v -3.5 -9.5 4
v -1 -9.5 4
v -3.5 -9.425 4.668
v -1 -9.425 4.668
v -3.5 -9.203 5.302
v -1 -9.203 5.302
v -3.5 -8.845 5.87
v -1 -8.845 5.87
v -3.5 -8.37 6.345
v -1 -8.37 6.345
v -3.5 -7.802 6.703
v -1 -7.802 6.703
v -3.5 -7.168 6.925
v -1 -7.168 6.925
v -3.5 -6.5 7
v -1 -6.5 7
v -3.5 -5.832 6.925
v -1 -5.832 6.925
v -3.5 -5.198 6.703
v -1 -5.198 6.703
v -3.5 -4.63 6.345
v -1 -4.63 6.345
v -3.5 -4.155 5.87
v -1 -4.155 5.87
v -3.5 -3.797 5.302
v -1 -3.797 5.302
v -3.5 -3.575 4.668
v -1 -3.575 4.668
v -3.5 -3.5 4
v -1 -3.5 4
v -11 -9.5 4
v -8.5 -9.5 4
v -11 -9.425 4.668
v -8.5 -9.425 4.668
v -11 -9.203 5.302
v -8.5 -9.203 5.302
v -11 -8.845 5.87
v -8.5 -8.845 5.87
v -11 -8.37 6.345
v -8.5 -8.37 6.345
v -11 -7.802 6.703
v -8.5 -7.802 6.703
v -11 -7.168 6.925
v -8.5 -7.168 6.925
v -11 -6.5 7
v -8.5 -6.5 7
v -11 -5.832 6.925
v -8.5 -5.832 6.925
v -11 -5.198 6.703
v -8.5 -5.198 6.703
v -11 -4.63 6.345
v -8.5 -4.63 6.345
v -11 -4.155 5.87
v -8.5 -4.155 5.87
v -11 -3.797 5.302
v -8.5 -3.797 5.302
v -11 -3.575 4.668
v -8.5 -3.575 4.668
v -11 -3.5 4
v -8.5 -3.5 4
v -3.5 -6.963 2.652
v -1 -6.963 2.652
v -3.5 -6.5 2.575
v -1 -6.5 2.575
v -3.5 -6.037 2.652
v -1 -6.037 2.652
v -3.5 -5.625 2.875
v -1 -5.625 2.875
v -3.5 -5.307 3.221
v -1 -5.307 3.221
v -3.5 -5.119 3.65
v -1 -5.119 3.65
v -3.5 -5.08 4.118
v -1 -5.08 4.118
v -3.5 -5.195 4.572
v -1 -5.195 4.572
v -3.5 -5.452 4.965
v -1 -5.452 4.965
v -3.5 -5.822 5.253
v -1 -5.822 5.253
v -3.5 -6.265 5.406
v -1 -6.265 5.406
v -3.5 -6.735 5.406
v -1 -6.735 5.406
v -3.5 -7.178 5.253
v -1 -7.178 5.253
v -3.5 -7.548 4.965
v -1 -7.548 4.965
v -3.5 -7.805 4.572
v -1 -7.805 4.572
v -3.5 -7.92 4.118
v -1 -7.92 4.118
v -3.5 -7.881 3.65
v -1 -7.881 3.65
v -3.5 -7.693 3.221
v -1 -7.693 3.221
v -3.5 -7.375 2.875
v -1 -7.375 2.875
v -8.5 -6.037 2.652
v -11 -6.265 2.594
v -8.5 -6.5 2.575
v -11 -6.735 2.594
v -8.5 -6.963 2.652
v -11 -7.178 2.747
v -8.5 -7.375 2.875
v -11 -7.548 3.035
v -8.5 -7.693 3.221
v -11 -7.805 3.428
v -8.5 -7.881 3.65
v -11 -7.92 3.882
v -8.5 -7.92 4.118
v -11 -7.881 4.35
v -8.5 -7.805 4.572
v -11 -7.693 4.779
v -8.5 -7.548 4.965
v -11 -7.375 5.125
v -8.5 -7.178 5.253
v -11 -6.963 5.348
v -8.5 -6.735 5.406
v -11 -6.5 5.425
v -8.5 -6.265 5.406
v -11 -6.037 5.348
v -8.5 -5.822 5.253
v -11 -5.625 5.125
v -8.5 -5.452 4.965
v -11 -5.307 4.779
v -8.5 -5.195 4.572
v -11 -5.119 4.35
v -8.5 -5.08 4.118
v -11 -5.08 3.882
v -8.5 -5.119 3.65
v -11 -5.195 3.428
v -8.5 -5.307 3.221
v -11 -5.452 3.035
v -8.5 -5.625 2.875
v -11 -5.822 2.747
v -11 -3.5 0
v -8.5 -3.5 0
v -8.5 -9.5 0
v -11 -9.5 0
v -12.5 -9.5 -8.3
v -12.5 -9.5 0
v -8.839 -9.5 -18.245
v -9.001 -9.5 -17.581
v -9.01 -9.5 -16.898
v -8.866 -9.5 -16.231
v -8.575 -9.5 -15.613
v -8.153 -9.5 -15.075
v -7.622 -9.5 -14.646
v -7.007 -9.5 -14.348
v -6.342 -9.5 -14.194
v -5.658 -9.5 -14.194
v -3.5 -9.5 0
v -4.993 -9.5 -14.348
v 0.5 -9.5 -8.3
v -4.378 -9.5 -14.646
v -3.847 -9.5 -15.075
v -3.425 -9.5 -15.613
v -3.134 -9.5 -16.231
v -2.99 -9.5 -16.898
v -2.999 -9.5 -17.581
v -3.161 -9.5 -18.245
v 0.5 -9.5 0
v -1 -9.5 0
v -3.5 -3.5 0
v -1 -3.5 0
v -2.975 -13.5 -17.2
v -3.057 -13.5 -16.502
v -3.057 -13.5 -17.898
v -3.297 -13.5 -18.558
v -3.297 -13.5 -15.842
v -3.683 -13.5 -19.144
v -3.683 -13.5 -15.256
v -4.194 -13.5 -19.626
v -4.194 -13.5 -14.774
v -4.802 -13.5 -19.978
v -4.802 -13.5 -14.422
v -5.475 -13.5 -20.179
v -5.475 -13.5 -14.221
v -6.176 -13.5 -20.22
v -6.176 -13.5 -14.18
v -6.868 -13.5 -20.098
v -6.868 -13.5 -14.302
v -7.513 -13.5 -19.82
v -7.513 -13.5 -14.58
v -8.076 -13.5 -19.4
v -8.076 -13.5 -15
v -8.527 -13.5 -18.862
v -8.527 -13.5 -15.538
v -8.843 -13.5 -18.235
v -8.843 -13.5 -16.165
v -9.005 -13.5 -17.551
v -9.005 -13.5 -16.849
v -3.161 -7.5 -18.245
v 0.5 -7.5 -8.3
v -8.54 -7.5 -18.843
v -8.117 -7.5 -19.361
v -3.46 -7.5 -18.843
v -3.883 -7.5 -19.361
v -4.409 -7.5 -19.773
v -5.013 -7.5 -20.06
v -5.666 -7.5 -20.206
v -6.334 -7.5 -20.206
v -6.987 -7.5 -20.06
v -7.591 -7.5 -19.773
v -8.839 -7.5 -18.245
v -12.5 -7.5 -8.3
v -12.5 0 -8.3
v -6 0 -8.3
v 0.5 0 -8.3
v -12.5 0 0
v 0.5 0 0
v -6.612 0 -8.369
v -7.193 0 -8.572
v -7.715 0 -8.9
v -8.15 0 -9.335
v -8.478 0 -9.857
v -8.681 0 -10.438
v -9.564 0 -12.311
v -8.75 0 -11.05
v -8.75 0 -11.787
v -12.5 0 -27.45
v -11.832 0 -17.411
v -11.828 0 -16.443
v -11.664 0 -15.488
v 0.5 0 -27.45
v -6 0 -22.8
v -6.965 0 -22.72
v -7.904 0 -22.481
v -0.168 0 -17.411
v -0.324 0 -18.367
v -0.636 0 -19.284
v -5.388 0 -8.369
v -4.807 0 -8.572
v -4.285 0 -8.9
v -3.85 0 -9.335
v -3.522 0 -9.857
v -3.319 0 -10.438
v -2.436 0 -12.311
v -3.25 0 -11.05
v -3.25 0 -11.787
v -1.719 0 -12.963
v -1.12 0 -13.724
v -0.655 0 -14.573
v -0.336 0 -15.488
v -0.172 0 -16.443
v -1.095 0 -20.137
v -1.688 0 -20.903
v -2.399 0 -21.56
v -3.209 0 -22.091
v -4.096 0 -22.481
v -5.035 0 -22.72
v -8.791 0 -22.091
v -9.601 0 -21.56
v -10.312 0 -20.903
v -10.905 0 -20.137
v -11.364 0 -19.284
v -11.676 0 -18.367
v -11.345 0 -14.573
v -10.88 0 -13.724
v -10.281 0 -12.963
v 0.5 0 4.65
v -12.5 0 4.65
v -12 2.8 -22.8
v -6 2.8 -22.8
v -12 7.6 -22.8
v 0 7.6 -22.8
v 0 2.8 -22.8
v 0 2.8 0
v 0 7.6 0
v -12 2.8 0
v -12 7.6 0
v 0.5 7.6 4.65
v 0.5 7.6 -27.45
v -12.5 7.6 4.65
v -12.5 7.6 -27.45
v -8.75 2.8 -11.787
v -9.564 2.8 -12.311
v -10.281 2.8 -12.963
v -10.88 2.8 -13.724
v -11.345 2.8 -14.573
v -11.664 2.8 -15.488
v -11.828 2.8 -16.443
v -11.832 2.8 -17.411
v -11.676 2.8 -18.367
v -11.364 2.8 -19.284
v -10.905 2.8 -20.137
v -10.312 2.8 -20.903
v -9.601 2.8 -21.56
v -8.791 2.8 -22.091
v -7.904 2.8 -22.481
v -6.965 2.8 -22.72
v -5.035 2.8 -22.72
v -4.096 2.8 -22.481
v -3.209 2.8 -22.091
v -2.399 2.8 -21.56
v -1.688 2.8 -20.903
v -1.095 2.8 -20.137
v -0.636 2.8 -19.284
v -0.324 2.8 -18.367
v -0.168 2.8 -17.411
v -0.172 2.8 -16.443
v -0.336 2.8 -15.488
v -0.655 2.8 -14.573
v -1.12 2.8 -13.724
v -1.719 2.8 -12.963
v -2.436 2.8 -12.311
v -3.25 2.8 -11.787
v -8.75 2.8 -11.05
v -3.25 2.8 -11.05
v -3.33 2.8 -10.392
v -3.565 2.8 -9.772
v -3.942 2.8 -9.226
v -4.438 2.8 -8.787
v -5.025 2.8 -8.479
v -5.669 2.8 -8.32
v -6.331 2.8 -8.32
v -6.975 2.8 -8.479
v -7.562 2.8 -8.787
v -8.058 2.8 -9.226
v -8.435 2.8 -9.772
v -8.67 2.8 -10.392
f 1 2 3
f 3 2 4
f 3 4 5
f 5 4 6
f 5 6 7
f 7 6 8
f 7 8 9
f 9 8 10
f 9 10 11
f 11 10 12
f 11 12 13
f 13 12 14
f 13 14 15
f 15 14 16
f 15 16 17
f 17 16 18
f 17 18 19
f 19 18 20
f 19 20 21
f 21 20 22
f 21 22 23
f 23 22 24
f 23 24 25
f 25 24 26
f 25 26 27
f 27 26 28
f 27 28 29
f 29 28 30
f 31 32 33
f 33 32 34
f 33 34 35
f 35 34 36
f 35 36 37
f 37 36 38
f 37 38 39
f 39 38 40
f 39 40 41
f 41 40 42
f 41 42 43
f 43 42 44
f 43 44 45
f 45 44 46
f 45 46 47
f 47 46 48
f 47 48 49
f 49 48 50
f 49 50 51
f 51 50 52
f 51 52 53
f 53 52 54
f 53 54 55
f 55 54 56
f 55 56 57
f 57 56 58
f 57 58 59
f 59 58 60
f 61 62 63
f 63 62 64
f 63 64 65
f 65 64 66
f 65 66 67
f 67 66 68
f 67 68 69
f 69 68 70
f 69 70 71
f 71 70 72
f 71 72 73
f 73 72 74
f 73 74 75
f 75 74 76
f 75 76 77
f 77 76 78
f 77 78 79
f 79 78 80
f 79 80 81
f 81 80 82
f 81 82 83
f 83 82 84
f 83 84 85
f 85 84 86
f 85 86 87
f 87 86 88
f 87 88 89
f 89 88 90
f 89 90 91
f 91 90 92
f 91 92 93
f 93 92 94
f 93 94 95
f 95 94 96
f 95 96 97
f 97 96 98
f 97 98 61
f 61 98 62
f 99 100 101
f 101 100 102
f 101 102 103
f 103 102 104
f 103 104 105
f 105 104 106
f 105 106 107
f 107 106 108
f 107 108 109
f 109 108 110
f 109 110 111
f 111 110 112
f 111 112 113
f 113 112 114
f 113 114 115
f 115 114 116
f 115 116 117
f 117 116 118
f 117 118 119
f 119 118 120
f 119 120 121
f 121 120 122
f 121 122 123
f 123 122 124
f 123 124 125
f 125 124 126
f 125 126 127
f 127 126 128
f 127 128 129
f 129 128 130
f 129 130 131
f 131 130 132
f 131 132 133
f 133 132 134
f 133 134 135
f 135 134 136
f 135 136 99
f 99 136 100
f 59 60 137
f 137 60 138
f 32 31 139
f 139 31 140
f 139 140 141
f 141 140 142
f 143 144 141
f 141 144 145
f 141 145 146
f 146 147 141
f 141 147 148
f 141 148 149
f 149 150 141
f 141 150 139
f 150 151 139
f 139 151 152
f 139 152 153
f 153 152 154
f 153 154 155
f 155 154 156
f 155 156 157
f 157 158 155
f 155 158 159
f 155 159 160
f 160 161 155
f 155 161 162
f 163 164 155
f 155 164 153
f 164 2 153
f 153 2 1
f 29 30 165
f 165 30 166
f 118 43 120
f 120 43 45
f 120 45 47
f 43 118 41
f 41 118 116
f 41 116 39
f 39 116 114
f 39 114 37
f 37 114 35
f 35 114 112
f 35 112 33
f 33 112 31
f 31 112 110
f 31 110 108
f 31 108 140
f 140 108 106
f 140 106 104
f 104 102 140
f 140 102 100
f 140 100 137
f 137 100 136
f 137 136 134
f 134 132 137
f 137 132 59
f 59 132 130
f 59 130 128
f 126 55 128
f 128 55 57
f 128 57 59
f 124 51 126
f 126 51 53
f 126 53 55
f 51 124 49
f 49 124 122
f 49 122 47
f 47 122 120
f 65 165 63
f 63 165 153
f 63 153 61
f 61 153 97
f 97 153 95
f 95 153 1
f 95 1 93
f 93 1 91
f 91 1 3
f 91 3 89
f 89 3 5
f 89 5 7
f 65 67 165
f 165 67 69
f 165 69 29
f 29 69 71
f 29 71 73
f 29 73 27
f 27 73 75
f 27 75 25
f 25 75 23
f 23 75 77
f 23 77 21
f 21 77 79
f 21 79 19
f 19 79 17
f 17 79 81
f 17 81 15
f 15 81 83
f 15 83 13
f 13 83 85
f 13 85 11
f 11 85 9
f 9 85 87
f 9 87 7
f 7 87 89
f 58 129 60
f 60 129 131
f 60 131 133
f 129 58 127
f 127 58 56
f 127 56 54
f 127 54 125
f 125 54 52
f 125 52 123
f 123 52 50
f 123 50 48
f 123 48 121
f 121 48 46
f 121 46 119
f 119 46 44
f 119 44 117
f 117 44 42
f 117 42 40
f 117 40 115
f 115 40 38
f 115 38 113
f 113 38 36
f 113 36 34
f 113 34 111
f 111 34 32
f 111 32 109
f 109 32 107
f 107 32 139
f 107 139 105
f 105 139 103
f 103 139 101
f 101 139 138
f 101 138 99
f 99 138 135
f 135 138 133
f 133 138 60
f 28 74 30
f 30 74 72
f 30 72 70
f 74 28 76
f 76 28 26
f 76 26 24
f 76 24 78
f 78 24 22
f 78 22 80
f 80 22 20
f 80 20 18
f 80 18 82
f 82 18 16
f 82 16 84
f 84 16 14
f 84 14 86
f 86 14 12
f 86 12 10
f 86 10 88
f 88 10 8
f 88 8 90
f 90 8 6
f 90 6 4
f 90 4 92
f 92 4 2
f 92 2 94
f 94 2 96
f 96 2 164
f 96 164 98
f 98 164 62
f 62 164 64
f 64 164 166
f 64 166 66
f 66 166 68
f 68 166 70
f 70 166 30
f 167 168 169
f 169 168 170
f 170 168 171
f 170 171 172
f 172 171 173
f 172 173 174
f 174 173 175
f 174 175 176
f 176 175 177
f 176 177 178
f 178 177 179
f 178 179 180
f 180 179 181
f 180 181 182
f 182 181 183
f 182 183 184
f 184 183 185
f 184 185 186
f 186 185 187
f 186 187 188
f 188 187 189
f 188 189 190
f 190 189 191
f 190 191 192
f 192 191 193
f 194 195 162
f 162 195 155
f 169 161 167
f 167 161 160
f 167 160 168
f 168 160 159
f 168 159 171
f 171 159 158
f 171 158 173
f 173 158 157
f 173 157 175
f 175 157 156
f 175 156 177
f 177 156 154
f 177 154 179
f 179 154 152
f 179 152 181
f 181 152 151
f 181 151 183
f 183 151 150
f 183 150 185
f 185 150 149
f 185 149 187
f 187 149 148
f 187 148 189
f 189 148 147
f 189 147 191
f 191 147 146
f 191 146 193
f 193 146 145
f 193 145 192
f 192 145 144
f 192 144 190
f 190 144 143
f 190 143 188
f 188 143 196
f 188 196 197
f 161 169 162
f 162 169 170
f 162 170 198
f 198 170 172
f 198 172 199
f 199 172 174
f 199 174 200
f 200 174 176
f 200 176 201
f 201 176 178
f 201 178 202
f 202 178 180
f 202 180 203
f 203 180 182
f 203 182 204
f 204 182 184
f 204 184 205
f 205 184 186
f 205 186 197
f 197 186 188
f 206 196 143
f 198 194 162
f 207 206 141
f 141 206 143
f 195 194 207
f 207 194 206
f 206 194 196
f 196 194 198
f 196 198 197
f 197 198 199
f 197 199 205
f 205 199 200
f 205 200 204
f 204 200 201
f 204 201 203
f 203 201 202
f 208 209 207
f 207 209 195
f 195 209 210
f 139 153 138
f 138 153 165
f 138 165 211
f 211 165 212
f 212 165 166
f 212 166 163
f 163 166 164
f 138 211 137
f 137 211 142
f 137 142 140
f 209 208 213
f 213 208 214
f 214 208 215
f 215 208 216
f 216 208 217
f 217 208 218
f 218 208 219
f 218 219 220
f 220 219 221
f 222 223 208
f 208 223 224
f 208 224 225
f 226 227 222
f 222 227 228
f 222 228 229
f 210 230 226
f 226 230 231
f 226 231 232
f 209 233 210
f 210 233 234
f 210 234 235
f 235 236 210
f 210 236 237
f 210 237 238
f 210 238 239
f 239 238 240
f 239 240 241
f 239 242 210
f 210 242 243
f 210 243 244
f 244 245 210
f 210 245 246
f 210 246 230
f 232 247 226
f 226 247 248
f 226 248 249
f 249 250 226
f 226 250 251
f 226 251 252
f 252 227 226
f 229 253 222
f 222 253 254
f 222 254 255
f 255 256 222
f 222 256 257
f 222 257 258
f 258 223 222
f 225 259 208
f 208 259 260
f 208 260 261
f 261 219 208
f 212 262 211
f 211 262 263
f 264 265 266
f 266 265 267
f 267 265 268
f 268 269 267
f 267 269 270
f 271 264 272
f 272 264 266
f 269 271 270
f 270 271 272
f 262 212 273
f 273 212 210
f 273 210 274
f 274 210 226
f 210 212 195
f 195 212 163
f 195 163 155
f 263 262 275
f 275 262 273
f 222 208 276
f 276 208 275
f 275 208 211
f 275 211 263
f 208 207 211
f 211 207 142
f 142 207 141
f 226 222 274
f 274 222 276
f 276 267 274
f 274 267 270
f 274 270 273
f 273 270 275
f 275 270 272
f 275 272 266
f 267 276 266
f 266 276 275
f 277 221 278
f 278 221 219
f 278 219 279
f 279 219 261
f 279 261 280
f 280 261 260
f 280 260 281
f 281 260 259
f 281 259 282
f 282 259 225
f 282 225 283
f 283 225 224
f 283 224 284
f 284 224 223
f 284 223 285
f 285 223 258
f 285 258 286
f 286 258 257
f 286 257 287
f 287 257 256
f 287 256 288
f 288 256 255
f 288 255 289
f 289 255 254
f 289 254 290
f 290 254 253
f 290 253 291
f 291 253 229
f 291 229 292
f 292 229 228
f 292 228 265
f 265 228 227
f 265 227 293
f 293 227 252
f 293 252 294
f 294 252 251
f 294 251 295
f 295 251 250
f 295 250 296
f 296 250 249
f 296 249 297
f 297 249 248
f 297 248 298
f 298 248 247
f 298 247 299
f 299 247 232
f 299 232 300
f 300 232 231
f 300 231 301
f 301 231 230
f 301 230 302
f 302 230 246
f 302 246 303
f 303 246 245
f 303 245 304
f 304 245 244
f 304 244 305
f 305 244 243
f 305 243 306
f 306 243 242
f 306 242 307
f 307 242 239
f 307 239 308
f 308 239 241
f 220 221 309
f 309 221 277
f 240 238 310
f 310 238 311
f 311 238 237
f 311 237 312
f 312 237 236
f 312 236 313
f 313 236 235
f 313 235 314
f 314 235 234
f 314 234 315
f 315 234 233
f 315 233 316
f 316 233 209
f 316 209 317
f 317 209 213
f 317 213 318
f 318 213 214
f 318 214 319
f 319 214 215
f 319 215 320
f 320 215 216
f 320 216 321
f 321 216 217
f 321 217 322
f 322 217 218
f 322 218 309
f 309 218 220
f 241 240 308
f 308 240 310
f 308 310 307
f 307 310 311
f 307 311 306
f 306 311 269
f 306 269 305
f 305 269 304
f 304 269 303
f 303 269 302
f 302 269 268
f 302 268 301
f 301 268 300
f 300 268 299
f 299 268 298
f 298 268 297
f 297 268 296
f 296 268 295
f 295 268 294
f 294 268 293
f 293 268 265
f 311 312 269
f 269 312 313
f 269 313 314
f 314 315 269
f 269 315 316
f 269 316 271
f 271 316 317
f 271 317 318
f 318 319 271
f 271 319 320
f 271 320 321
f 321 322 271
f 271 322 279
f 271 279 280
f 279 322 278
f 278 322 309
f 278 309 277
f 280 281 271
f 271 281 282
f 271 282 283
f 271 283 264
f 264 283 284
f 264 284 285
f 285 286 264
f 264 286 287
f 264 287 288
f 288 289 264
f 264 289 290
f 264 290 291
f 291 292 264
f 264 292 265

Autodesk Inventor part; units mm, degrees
ref_plane "YZ Plane" through (0, 0, 0) normal (1, 0, 0) x (0, 1, 0)
ref_plane "XZ Plane" through (0, 0, 0) normal (0, 1, 0) x (-1, 0, 0)
ref_plane "XY Plane" through (0, 0, 0) normal (0, 0, 1) x (1, 0, 0)
sketch "Sketch1" plane through (0, 0, 0) normal (0, 1, 0) x (-1, 0, 0)
  line L0 (0, 0) -> (12, 0)
  line L1 (12, 0) -> (12, -22.8)
  line L2 (12, -22.8) -> (0, -22.8)
  line L3 (0, -22.8) -> (0, 0)
  line L4 (6, -22.8) -> (6, -11.1)
  line L5 (12, 0) -> (12, 4.65)
  line L6 (12, 4.65) -> (12.5, 4.65)
  line L7 (0, -22.8) -> (-0.5, -22.8)
  line L8 (-0.5, -22.8) -> (-0.5, -27.45)
  line L9 (12.5, 4.65) -> (-0.5, 4.65)
  line L10 (-0.5, 4.65) -> (-0.5, -27.45)
  line L11 (-0.5, -27.45) -> (12.5, -27.45)
  line L12 (12.5, -27.45) -> (12.5, 4.65)
  circle A0 centre (6, -16.95) radius 5.85
  line L13 (6, -11.1) -> (6, -8.3)
  line L14 (6, -8.3) -> (6, -11.05)
  circle A1 centre (6, -11.05) radius 2.75
  line L15 (3.25, -11.05) -> (3.25, -11.7867)
  line L16 (8.75, -11.05) -> (8.75, -11.7867)
  dimension "d0" = 22.8
  dimension "d1" = 12
  dimension "d5" = 4.65
  dimension "d6" = 0.5
  dimension "d7" = 0.5
  dimension "d8" = 4.65
  dimension "d42" = 11.7
  dimension "d43" = 2.8
  dimension "d44" = 2.75
extrude "Extrusion1" add sketch "Sketch1" along normal blind 2.8 contours L0 L1 L2 L3
extrude "Extrusion3" add sketch "Sketch1" along normal blind 7.6 contours L3 L7 L10 L9 L5 L0 | L5 L6 L12 L11 L8 L7 L2 L1
sketch "Sketch5" plane through (0, 0, 0) normal (0, -1, 0) x (1, 0, 0)
  line L0 (0.5, 4.65) -> (0.5, -27.45) projected
  line L1 (0.5, 4.65) -> (0.5, 0)
  line L2 (-12.5, -27.45) -> (-12.5, 4.65) projected
  line L3 (0.5, 0) -> (-12.5, 0)
  line L4 (-12.5, 0) -> (-12.5, -8.3)
  line L5 (-12.5, -8.3) -> (0.5, -8.3)
  line L6 (0.5, -8.3) -> (0.5, 0)
  point P0 (0, 0)
  dimension "d45" = 4.65
  dimension "d46" = 8.3
extrude "Extrusion8" add sketch "Sketch5" along normal blind 7.5
sketch "Sketch6" plane through (0, -7.5, 0) normal (0, -1, 0) x (1, 0, 0)
  line L0 (-6, -22.8) -> (-12, -22.8) projected
  line L1 (-6, -22.8) -> (-6, -17.2)
  circle A0 centre (-6, -17.2) radius 3.025
  line L2 (0.5, 0) -> (-12.5, 0) projected
  line L3 (-6, -8.3) -> (-12.5, -8.3) projected
  line L4 (0.5, 0) -> (-12.5, 0)
  line L5 (-12.5, 0) -> (-12.5, -8.3)
  line L6 (-12.5, -8.3) -> (0.5, -8.3)
  line L7 (0.5, -8.3) -> (0.5, 0)
  line L8 (-12.5, -8.3) -> (-7.8416, -20.9536)
  line L9 (0.5, -8.3) -> (-6, -8.3) projected
  line L10 (0.5, -8.3) -> (-4.2111, -21.0966)
  point P0 (0, 0)
  point P1 (-12.5, 0)
  point P2 (-8.8387, -18.2451)
  point P3 (-3.1613, -18.2451)
  dimension "d49" = 5.6
  dimension "d50" = 6.05
extrude "Extrusion9" add sketch "Sketch6" along normal blind 2
sketch "Sketch7" plane through (0, -9.5, 0) normal (0, -1, 0) x (1, 0, 0)
  arc A0 (-8.75, -11.7867) -> (-3.25, -11.7867) centre (-6, -16.95) ccw projected
  line L0 (-6, -22.8) -> (-6, -17.2)
  circle A1 centre (-6, -17.2) radius 3.025
  point P0 (0, 0)
  dimension "d53" = 5.6
  dimension "d54" = 6.05
extrude "Extrusion10" add sketch "Sketch7" along normal blind 4
sketch "Sketch8" plane through (-12.5, 0, 0) normal (0, 0, 1) x (1, 0, 0)
  line L0 (13, -9.5) -> (0, -9.5) projected
  line L1 (6.5, -9.5) -> (9, -9.5)
  line L2 (6.5, -9.5) -> (4, -9.5)
  line L3 (9, -9.5) -> (11.5, -9.5)
  line L4 (11.5, -9.5) -> (11.5, -3.5)
  line L5 (11.5, -3.5) -> (9, -3.5)
  line L6 (9, -3.5) -> (9, -9.5)
  line L7 (4, -9.5) -> (1.5, -9.5)
  line L8 (1.5, -9.5) -> (1.5, -3.5)
  line L9 (1.5, -3.5) -> (4, -3.5)
  line L10 (4, -3.5) -> (4, -9.5)
  point P0 (12.5, 0)
  point P1 (1.5, -9.5)
  dimension "d58" = 2.5
  dimension "d59" = 2.5
  dimension "d60" = 6
  dimension "d61" = 6
  dimension "d62" = 2.5
  dimension "d63" = 2.5
extrude "Extrusion11" add sketch "Sketch8" along normal blind 7
sketch "Sketch9" plane through (-11, -9.5, 0) normal (-1, 0, 0) x (0, 0, 1)
  line L0 (7, 6) -> (7, 0) projected
  line L1 (7, 3) -> (4, 3)
  circle A0 centre (4, 3) radius 3
  circle A1 centre (4, 3) radius 1.425
  line L2 (0, 6) -> (7, 6) projected
  line L3 (0, 0) -> (7, 0) projected
  line L4 (7, 6) -> (1.6009, 6)
  line L5 (1.6009, 6) -> (1.6009, 0)
  line L6 (1.6009, 0) -> (7, 0)
  line L7 (7, 0) -> (7, 6)
  point P0 (0, 9.5)
  point P1 (4, 6)
  point P2 (4, 0)
  dimension "d66" = 2.85
  dimension "d67" = 3
extrude "Extrusion12" cut sketch "Sketch9" against normal through all contours L0 A0 L2 | A1 | L0 L3 A0
properties part number "ServoMount"
